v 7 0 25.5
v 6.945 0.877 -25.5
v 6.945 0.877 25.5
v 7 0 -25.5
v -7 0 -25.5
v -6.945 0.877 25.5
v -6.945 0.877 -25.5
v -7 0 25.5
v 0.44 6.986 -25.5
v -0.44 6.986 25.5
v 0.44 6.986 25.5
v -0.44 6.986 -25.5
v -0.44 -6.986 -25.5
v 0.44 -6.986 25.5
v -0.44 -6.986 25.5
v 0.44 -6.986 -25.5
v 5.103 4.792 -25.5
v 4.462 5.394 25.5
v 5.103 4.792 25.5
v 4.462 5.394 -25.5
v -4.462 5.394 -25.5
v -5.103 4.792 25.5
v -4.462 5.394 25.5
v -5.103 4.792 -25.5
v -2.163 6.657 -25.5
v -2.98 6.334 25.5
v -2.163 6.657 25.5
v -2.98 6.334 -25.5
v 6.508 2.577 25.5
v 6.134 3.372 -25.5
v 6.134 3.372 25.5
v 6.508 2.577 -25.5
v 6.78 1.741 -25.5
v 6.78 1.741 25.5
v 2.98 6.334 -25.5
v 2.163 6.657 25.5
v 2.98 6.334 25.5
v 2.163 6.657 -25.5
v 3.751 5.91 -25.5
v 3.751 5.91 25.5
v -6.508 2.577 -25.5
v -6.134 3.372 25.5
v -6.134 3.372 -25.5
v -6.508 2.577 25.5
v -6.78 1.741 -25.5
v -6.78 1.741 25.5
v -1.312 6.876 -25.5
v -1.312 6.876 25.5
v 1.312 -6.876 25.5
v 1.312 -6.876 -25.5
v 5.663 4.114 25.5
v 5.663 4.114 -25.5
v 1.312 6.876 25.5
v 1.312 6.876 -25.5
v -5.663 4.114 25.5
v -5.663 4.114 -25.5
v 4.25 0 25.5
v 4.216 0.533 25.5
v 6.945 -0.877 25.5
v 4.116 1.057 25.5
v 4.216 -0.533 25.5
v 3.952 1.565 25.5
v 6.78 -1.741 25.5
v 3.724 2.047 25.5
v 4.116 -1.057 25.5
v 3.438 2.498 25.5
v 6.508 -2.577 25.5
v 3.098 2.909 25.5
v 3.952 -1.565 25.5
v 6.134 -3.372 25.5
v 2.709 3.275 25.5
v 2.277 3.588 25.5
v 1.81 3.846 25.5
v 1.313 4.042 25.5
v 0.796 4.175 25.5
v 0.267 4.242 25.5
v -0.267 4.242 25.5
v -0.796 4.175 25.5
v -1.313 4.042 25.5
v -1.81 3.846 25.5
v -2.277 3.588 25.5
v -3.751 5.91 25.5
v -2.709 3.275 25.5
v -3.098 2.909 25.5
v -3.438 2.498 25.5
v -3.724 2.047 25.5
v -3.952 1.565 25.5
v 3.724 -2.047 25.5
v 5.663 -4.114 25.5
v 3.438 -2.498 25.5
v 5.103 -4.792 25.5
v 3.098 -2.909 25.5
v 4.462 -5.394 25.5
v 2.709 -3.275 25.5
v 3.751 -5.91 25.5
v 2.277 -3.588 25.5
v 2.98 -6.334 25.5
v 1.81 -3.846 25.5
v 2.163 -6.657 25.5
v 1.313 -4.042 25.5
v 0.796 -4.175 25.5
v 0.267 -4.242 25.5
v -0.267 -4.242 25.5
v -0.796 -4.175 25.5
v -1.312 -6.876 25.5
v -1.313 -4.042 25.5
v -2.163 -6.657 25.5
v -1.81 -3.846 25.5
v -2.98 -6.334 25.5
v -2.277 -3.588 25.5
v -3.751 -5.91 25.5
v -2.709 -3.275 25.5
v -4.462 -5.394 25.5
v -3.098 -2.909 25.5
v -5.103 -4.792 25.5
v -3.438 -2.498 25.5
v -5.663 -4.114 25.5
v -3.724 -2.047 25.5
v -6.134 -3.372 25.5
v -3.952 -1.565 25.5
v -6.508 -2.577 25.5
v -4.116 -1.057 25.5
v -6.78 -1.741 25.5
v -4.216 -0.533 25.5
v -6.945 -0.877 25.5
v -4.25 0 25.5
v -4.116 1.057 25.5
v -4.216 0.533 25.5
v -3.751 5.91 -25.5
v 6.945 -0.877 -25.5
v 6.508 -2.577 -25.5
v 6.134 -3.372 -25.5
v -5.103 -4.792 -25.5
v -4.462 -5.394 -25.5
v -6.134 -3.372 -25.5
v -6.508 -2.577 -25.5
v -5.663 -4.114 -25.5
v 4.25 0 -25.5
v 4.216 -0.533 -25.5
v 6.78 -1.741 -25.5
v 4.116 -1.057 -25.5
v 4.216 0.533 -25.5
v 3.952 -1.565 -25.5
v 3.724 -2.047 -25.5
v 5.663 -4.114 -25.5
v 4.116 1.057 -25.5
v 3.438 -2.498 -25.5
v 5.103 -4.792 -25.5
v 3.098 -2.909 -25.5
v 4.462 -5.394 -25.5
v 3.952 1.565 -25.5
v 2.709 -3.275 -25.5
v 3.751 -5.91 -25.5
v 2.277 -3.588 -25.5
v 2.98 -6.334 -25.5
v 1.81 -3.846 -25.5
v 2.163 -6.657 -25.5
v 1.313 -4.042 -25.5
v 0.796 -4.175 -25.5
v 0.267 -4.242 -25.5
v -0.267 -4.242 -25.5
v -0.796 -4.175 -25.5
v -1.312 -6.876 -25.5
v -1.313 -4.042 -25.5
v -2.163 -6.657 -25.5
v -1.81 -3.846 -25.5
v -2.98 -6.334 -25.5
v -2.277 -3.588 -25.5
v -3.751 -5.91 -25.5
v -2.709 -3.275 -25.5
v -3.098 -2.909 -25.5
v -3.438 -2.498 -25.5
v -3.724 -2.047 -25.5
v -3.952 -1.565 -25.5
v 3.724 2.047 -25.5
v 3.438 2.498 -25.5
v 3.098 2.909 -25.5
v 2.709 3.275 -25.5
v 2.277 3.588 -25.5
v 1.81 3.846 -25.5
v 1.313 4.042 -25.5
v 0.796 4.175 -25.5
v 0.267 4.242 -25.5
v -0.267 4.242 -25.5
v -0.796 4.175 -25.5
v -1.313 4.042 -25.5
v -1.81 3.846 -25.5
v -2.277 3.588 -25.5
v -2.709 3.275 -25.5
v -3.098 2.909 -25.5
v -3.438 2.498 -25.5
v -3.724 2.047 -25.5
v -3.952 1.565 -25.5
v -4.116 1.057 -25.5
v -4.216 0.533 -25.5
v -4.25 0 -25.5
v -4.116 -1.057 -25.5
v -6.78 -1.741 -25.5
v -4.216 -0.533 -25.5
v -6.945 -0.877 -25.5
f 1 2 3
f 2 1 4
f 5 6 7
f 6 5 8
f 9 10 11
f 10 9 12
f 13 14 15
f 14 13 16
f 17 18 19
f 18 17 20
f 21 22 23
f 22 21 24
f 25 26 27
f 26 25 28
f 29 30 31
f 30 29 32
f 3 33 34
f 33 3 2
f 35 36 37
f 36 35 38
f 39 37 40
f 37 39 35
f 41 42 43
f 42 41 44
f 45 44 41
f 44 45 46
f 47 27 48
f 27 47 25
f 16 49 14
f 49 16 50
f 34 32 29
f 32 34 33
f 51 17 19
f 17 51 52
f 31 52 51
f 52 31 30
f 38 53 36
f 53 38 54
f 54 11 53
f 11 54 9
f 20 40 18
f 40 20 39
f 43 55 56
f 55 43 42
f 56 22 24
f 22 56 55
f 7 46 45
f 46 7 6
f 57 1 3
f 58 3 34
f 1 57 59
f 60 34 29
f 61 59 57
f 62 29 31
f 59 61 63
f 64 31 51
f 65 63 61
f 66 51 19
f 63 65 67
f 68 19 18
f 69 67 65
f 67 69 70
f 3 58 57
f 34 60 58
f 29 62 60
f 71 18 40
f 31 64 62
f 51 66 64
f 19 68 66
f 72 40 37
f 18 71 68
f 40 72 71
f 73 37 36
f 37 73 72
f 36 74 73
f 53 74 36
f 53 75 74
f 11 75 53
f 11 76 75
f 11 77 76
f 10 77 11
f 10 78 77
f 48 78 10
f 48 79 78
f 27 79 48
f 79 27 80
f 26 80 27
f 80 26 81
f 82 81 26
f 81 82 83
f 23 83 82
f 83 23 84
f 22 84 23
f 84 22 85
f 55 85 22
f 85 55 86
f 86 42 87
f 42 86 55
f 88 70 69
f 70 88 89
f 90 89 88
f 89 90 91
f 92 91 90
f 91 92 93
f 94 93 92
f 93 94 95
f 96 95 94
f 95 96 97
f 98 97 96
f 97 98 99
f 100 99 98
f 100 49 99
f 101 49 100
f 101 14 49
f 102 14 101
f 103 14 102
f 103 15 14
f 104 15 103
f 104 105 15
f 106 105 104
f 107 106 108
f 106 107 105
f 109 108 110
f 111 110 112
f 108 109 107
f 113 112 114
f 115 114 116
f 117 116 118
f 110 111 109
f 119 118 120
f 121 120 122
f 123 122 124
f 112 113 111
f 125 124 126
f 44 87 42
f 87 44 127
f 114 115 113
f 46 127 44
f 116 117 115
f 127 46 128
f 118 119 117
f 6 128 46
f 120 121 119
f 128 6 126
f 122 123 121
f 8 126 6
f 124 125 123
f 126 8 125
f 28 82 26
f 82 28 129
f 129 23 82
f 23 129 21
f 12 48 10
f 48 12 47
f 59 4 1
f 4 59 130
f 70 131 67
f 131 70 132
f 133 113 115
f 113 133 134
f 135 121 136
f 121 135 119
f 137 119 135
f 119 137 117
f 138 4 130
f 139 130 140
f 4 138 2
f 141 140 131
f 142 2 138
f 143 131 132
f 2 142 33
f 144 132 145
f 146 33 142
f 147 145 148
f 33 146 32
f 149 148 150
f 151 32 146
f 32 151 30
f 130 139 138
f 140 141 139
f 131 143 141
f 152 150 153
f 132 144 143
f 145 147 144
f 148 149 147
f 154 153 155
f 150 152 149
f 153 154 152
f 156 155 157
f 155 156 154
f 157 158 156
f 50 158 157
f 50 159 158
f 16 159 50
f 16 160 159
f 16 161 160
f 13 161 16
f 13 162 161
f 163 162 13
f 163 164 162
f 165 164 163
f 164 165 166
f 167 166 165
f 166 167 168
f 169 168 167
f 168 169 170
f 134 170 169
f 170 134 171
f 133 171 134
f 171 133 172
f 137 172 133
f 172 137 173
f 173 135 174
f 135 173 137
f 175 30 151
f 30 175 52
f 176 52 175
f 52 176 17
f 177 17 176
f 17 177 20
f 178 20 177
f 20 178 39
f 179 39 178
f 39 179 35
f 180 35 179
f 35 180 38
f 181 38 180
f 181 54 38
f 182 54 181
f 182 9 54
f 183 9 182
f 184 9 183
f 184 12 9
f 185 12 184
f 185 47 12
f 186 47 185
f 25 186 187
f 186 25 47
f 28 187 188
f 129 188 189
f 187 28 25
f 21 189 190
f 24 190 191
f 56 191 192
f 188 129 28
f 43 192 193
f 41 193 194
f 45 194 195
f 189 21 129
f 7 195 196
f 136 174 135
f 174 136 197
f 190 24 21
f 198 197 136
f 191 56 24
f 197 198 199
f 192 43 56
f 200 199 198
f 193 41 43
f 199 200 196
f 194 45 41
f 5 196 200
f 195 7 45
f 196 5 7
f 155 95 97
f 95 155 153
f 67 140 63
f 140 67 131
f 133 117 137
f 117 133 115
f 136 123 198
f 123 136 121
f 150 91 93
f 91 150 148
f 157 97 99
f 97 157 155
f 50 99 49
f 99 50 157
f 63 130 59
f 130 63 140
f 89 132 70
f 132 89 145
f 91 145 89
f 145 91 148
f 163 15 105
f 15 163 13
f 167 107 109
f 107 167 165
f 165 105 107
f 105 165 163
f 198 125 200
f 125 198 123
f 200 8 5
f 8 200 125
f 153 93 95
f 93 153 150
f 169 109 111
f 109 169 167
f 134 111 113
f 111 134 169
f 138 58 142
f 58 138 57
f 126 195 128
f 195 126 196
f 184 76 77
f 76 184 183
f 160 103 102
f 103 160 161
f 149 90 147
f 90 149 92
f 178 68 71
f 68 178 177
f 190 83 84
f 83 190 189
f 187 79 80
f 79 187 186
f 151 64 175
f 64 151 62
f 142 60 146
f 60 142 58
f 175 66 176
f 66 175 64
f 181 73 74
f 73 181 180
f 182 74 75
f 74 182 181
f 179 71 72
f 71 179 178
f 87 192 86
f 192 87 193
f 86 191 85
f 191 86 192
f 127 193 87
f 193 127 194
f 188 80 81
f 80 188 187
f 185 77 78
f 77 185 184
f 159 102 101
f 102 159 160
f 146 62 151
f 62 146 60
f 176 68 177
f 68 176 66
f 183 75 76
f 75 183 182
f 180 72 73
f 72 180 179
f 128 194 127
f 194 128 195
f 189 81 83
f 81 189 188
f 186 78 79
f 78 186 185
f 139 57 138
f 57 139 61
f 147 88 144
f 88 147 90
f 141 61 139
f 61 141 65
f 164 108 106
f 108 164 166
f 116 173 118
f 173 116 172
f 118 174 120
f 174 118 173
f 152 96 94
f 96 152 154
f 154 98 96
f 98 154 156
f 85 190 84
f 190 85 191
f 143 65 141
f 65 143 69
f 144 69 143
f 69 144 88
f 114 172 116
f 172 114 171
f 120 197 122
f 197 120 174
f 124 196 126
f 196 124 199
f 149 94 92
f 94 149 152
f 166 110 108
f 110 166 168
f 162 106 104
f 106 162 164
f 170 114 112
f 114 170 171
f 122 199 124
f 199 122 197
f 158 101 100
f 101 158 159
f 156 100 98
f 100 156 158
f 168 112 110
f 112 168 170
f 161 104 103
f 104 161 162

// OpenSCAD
$fn = 50;


difference() {
	union() {
		translate(v = [0, 0, -25.5000000000]) {
			cylinder(h = 51, r = 7.0000000000);
		}
	}
	union() {
		translate(v = [0, 0, -100.0000000000]) {
			cylinder(h = 200, r = 4.2500000000);
		}
	}
}
